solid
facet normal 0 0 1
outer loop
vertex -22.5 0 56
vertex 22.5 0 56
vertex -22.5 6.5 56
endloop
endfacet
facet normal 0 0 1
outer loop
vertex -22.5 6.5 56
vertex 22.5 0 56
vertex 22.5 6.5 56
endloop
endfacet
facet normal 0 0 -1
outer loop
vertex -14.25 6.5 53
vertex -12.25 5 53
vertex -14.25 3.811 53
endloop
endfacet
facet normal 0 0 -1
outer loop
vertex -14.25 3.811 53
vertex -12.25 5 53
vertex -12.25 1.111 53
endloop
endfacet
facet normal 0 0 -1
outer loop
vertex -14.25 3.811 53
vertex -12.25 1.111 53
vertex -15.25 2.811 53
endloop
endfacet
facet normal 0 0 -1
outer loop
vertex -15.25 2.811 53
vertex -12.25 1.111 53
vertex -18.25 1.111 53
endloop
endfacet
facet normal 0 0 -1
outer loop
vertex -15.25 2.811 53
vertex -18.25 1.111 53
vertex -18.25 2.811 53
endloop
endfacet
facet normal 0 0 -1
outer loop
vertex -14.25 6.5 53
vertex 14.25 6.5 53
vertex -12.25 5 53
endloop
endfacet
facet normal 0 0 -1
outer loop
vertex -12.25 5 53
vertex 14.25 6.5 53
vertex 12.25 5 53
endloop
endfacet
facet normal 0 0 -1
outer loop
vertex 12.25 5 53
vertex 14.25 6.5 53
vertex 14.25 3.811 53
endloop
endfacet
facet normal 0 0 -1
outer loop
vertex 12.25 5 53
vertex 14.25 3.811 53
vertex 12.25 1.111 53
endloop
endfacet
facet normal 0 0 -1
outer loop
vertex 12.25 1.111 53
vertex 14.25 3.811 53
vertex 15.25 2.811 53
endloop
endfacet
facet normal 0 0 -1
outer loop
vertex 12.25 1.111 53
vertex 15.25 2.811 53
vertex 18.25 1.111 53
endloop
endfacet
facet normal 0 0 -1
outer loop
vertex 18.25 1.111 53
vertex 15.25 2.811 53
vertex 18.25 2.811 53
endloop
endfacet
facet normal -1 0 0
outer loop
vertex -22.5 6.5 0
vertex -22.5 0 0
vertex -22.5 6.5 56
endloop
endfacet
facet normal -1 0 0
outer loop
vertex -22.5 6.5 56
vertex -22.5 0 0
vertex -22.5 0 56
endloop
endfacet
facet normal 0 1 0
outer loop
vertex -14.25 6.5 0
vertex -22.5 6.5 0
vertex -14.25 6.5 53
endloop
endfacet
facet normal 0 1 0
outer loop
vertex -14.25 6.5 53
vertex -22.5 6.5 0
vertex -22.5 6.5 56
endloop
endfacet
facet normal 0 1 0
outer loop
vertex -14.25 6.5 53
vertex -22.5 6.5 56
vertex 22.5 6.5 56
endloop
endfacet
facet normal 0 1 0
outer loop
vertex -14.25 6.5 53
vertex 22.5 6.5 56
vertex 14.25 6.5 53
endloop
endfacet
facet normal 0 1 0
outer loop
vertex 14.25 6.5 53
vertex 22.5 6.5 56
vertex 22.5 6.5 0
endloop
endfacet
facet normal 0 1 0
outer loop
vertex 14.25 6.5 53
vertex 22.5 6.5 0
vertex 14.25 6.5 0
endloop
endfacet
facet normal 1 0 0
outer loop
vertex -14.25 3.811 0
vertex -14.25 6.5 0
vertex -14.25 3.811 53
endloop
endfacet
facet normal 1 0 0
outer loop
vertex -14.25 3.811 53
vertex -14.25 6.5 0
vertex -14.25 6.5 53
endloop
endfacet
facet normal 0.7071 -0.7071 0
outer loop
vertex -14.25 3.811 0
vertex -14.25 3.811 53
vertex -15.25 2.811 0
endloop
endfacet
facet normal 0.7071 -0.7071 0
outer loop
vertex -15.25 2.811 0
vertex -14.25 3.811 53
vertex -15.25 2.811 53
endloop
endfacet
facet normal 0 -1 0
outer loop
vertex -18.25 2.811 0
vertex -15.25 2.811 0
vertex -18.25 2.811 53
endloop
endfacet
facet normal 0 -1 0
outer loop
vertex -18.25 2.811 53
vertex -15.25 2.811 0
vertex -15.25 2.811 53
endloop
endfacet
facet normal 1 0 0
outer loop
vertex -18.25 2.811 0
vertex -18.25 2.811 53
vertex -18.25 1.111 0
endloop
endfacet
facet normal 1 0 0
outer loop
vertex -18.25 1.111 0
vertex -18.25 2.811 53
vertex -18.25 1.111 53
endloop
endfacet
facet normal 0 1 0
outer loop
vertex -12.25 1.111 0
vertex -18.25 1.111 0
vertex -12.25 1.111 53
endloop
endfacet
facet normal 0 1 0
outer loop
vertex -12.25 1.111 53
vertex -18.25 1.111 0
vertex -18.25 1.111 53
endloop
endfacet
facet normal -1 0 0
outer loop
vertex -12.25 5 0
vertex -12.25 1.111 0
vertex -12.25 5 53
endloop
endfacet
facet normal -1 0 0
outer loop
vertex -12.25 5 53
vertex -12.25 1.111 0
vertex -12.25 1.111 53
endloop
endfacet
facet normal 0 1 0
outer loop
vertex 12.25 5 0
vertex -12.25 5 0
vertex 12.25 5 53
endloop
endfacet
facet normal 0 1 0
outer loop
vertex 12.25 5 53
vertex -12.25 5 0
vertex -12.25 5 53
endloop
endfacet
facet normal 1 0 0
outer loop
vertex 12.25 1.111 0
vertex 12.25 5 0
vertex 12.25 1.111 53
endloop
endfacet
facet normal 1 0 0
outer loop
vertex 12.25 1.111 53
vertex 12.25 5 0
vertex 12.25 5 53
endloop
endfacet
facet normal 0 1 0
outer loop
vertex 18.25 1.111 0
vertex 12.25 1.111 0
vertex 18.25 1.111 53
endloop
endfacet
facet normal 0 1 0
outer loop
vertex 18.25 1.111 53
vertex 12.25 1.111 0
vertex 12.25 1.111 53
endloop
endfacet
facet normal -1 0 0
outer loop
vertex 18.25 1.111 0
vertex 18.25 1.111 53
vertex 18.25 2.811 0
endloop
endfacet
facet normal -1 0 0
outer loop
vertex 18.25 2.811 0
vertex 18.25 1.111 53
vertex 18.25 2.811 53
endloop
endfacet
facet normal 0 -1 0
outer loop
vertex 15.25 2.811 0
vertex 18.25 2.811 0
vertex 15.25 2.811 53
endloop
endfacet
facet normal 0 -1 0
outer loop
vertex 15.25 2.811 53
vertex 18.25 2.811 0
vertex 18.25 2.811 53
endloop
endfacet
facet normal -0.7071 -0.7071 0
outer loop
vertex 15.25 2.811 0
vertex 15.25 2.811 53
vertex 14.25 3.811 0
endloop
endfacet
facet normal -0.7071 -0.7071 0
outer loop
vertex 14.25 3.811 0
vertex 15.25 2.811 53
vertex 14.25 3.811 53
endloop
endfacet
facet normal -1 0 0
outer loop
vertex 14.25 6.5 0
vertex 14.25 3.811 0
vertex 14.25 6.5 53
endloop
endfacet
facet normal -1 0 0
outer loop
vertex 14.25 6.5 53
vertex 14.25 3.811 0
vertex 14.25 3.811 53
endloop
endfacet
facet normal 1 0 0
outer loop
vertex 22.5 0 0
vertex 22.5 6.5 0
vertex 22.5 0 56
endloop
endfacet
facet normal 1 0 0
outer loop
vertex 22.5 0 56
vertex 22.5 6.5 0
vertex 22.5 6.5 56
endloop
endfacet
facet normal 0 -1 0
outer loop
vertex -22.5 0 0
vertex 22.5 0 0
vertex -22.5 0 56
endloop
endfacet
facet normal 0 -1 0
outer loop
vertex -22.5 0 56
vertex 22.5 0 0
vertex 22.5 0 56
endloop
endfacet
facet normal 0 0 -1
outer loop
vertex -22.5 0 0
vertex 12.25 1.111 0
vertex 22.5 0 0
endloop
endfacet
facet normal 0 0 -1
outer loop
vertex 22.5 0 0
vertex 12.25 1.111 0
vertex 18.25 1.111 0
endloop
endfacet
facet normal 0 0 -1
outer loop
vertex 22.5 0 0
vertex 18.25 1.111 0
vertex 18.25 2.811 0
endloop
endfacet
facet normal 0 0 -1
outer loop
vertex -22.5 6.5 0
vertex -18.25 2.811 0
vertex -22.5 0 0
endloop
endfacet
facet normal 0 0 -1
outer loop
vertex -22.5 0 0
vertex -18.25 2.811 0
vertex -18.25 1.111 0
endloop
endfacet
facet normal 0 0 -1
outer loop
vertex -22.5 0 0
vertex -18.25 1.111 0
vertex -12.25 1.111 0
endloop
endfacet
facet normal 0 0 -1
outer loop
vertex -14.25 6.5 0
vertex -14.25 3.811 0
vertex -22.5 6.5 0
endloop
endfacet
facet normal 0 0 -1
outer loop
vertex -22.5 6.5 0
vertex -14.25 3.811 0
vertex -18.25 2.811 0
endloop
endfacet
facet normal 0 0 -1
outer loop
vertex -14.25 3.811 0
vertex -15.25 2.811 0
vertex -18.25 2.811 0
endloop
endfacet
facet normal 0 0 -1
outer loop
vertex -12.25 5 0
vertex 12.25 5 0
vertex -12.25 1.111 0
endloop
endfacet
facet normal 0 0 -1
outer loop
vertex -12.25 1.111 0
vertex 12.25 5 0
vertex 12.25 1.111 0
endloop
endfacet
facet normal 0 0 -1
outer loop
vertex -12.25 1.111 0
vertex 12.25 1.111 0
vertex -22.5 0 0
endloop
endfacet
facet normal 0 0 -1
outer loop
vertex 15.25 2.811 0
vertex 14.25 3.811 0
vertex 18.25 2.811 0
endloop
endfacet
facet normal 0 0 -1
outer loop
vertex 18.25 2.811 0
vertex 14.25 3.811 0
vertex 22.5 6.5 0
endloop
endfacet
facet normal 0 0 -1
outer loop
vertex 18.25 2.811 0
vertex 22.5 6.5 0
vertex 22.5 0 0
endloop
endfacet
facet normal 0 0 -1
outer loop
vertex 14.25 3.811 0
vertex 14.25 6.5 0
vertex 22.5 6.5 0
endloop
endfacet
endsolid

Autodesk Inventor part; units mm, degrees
ref_plane "YZ Plane" through (0, 0, 0) normal (1, 0, 0) x (0, 1, 0)
ref_plane "XZ Plane" through (0, 0, 0) normal (0, 1, 0) x (-1, 0, 0)
ref_plane "XY Plane" through (0, 0, 0) normal (0, 0, 1) x (1, 0, 0)
sketch "Sketch1" plane through (0, 0, 0) normal (0, 0, 1) x (1, 0, 0)
  line L0 (-22.5, 0) -> (22.5, 0)
  line L1 (22.5, 0) -> (22.5, 6.5)
  line L2 (22.5, 6.5) -> (14.25, 6.5)
  line L3 (14.25, 6.5) -> (14.25, 3.8111)
  line L4 (15.25, 2.8111) -> (18.25, 2.8111)
  line L5 (18.25, 2.8111) -> (18.25, 1.1111)
  line L6 (18.25, 1.1111) -> (12.25, 1.1111)
  line L7 (12.25, 1.1111) -> (12.25, 5)
  line L8 (12.25, 5) -> (-12.25, 5)
  line L9 (-12.25, 5) -> (-12.25, 1.1111)
  line L10 (-12.25, 1.1111) -> (-18.25, 1.1111)
  line L11 (-18.25, 1.1111) -> (-18.25, 2.8111)
  line L12 (-18.25, 2.8111) -> (-15.25, 2.8111)
  line L13 (-14.25, 3.8111) -> (-14.25, 6.5)
  line L14 (-14.25, 6.5) -> (-22.5, 6.5)
  line L15 (-22.5, 6.5) -> (-22.5, 0)
  line L16 (15.25, 2.8111) -> (14.25, 3.8111)
  line L17 (-14.25, 3.8111) -> (-15.25, 2.8111)
  point P0 (0, 0)
  point P1 (14.25, 2.8111)
  point P2 (-14.25, 2.8111)
  dimension "d0" = 45
  dimension "d1" = 6.5
  dimension "d2" = 22.5
  dimension "d3" = 36.5
  dimension "d4" = 4.25
  dimension "d5" = 6
  dimension "d6" = 4
  dimension "d7" = 4
  dimension "d8" = 6
  dimension "d9" = 5
  dimension "d14" = 1.1111
  dimension "d15" = 1.7
  dimension "d16" = 1
  dimension "d17" = 1
  dimension "d18" = 1
  dimension "d19" = 1
extrude "Extrusion1" add sketch "Sketch1" along normal blind 53
sketch "Sketch2" plane through (0, 0, 53) normal (0, 0, 1) x (1, 0, 0)
  line L0 (-22.5, 0) -> (22.5, 0) projected
  line L1 (-22.5, 6.5) -> (-22.5, 0) projected
  line L2 (22.5, 0) -> (22.5, 6.5) projected
  line L3 (-22.5, 6.5) -> (22.5, 6.5)
  point P0 (0, 0)
extrude "Extrusion2" add sketch "Sketch2" along normal blind 3
equation "\"d17\" = d16"
equation "\"d19\" = d18"
properties part number "placa_metal"
